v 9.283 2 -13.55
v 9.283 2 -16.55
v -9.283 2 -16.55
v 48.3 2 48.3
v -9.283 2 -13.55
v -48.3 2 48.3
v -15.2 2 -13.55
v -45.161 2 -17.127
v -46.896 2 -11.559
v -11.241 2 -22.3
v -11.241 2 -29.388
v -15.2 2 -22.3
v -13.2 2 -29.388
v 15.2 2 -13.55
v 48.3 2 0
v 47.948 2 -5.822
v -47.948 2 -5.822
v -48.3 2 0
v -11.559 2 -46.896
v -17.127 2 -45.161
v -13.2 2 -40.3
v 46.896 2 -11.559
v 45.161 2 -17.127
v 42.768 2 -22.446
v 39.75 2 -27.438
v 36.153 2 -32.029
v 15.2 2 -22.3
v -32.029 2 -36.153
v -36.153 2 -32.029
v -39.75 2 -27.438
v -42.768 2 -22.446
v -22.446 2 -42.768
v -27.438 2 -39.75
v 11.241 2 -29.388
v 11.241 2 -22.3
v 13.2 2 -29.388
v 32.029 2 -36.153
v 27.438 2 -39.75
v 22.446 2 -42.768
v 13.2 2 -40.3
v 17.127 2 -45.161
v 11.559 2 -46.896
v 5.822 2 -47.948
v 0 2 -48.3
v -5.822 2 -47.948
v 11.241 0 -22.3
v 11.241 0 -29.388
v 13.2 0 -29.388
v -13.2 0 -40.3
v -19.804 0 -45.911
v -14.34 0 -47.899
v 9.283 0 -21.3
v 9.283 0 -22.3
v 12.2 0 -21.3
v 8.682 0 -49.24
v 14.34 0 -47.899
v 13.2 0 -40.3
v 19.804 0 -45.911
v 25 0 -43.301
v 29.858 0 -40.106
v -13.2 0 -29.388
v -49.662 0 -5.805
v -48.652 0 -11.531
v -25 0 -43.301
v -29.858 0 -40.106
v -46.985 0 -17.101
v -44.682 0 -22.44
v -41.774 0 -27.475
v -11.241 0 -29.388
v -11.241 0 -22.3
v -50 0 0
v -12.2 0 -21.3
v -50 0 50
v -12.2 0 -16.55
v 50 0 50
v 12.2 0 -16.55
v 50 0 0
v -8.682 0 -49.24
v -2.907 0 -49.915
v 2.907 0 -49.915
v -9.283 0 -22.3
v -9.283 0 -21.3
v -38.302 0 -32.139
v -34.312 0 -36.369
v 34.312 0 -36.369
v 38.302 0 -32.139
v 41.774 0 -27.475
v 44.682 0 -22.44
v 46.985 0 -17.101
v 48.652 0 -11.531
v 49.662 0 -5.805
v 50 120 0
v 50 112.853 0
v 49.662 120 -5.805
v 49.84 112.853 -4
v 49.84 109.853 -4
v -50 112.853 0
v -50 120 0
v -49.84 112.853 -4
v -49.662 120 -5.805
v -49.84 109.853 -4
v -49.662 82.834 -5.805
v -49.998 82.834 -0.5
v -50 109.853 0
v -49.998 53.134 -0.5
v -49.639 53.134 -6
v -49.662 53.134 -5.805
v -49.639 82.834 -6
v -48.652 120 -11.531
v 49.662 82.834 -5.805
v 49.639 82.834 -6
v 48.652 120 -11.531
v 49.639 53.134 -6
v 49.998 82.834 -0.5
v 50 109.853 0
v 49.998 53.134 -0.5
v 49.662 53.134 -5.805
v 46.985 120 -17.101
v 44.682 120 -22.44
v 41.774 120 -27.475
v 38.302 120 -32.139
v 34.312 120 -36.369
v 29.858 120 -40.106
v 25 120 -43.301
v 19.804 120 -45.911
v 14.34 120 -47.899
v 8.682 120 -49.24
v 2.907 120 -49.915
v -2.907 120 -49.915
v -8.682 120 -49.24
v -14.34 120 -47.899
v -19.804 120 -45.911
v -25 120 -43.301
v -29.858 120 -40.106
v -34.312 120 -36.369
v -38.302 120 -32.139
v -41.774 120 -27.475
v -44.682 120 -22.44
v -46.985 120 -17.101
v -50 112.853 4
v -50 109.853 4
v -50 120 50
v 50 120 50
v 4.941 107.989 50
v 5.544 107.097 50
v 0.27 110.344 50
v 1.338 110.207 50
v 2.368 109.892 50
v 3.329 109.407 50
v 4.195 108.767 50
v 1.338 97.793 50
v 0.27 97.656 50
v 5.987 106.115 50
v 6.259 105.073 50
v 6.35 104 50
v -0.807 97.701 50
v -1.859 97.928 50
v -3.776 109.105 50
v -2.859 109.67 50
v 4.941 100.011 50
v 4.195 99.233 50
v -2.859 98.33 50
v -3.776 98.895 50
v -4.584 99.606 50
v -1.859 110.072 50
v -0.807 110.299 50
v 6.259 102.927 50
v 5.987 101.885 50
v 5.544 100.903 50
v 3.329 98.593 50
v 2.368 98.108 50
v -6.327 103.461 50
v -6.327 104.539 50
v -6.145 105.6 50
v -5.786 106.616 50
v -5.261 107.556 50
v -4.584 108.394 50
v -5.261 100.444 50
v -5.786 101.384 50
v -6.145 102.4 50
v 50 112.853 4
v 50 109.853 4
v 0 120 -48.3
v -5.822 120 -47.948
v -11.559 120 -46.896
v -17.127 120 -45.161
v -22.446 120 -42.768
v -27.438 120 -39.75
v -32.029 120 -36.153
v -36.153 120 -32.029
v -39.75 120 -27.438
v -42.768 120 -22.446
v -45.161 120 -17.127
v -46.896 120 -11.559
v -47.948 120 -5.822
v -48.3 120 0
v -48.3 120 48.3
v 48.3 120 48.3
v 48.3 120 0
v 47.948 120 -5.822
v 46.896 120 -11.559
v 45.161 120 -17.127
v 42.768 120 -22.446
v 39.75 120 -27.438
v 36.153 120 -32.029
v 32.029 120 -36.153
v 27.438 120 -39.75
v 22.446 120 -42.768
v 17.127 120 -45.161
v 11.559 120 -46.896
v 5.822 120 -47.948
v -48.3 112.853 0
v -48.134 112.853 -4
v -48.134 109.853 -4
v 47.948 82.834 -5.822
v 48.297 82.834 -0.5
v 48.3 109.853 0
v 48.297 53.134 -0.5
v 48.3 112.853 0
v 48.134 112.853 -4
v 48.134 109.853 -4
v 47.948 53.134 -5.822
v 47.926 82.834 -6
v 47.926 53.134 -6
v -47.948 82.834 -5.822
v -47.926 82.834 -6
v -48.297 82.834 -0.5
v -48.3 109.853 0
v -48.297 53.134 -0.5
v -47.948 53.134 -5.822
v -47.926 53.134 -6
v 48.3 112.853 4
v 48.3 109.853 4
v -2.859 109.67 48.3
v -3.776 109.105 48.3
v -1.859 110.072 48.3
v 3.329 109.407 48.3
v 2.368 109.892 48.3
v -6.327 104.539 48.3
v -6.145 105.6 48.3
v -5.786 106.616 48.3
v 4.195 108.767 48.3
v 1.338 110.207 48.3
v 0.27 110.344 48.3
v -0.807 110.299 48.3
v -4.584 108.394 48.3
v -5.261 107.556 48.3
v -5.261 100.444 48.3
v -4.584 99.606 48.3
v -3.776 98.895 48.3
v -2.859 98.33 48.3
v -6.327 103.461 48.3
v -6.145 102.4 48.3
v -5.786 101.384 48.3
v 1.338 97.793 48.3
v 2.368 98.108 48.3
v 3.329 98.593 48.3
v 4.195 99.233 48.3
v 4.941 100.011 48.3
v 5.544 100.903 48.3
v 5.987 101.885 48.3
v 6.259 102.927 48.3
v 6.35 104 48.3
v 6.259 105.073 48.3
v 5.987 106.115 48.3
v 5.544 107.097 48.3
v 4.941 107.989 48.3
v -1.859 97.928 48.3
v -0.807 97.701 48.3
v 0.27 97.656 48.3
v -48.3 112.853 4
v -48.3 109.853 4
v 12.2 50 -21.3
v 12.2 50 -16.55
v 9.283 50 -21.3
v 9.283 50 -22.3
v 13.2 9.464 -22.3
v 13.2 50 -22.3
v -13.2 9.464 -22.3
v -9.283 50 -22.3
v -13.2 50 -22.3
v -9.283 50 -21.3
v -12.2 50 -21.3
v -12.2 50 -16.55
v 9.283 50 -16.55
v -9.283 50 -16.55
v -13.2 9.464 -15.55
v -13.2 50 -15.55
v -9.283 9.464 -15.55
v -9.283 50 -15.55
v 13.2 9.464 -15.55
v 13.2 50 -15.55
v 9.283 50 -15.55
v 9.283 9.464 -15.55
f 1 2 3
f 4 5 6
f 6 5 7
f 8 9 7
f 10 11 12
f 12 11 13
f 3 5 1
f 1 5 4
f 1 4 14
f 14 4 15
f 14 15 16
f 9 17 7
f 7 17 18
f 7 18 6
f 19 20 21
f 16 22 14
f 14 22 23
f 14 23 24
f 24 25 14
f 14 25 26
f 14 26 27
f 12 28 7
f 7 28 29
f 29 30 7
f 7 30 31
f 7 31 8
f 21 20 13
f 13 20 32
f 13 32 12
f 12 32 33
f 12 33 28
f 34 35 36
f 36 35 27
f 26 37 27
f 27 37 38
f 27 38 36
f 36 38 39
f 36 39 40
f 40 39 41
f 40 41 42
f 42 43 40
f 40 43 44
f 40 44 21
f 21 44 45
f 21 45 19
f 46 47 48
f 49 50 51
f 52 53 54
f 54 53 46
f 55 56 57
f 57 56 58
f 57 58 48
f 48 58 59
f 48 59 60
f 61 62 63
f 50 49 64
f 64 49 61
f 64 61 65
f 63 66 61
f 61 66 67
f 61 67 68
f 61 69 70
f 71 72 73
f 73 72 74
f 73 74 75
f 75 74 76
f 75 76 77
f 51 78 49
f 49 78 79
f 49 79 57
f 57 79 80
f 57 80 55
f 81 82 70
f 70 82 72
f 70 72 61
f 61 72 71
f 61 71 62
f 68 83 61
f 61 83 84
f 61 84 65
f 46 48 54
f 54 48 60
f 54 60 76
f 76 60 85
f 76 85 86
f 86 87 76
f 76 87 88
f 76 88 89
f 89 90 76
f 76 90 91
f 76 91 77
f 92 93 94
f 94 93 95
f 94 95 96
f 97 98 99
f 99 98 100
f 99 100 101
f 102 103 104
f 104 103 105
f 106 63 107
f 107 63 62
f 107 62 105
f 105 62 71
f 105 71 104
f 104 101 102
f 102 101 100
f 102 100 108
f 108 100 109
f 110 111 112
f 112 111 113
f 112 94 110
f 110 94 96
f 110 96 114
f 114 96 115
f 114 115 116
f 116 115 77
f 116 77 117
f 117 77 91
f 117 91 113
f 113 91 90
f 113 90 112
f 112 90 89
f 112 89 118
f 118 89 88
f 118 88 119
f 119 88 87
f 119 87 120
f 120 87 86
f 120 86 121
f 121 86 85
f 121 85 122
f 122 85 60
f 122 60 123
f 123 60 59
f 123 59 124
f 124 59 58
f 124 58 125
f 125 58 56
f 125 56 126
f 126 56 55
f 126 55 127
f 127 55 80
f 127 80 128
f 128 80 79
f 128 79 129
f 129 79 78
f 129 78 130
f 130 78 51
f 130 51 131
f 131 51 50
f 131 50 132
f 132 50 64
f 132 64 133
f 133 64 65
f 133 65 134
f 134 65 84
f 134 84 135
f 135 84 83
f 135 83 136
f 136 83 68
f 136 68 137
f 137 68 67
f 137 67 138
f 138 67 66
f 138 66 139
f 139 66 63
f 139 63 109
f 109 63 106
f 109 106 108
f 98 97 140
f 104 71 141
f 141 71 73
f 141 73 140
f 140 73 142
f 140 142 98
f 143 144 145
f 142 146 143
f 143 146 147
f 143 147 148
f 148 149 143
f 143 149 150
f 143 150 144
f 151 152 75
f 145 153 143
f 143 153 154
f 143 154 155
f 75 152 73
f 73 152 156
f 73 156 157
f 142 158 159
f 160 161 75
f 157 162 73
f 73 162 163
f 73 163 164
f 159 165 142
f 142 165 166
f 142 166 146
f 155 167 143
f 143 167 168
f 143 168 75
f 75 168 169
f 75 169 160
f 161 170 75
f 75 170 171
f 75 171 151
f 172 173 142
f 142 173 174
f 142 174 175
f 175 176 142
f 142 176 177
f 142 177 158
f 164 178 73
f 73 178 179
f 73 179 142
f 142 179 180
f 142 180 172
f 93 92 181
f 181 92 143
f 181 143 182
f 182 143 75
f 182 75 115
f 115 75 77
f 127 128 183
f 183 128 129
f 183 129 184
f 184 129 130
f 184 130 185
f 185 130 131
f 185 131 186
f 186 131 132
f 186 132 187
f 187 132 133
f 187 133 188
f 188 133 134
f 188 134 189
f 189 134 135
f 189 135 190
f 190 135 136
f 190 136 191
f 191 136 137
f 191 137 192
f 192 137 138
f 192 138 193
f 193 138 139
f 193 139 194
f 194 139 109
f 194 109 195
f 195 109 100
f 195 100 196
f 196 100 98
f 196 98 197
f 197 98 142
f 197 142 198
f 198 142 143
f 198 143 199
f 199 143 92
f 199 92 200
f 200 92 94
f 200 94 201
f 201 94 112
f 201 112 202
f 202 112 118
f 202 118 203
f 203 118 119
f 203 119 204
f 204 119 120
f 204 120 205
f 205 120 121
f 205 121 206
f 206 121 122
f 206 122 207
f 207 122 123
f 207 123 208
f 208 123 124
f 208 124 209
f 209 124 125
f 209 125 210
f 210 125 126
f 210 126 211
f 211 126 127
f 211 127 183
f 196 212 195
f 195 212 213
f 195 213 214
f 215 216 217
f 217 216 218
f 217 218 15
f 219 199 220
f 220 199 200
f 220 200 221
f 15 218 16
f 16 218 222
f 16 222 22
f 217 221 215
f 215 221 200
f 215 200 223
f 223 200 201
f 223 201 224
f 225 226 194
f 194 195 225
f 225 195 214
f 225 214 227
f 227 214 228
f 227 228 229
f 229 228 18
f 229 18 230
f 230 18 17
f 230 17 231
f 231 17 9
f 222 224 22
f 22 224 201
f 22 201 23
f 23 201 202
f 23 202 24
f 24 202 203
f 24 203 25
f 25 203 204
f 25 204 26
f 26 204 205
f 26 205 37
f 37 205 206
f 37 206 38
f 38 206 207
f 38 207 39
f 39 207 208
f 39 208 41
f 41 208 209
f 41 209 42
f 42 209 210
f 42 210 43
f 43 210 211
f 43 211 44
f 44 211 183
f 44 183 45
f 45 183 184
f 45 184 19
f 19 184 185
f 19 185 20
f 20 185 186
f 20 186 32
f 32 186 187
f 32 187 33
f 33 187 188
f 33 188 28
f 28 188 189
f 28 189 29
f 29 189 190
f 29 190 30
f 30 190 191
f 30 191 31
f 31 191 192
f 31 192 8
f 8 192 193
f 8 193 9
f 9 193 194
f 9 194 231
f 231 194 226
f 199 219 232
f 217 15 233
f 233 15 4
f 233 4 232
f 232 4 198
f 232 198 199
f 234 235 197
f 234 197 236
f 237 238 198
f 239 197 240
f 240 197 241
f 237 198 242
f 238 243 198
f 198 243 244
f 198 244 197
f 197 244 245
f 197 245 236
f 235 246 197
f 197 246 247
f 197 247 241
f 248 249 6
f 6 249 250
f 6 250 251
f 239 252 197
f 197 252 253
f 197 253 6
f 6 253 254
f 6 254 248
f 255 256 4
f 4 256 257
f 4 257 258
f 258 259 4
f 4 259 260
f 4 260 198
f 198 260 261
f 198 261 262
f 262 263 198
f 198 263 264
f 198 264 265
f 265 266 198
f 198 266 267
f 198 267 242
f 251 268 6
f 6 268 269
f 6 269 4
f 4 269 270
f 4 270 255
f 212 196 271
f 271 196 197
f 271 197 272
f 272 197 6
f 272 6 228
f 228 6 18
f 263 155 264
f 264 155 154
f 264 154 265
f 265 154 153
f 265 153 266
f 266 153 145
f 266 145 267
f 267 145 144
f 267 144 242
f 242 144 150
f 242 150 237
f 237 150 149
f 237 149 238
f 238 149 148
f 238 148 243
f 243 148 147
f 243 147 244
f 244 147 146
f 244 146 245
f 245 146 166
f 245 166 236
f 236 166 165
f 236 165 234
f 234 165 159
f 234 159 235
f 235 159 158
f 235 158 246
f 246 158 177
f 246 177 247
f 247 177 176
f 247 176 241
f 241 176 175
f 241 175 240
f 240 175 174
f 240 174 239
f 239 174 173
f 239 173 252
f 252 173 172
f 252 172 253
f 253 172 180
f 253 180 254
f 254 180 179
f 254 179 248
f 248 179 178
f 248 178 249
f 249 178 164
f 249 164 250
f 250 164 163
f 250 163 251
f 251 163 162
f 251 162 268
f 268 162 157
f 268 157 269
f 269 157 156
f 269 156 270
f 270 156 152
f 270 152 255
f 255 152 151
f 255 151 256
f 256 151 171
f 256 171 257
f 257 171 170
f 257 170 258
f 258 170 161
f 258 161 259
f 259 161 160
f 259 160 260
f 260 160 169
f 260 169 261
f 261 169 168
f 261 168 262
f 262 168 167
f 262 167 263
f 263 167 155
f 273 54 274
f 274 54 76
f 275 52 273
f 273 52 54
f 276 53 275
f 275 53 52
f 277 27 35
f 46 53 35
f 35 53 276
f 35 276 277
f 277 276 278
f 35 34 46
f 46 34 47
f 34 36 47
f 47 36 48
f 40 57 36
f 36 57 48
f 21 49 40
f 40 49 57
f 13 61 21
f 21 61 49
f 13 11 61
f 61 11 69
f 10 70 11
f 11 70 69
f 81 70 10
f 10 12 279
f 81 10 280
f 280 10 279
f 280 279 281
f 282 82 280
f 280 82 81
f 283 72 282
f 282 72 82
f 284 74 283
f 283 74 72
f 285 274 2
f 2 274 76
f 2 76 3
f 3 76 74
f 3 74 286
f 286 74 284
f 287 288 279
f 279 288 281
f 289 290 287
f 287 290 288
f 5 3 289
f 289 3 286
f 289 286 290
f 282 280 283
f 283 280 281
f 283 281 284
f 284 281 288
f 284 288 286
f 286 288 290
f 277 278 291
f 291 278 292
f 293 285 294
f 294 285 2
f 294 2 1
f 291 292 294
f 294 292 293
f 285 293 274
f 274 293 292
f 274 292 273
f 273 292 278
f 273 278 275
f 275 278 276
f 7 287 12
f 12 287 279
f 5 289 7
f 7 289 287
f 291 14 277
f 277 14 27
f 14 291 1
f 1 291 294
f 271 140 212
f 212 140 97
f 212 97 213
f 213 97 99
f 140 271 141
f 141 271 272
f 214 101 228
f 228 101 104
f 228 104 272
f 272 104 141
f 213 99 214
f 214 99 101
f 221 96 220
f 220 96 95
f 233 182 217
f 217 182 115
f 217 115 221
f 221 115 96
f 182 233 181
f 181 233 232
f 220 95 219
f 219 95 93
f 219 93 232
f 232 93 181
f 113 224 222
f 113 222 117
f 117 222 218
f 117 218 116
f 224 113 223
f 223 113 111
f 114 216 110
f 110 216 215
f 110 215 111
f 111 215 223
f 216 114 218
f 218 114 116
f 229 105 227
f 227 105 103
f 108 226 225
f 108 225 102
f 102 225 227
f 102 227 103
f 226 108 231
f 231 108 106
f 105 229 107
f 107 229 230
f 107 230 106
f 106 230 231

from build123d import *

# Parameters (mm, degrees)
BOSS_EXTRUDE1_DEPTH = 120
CUT_EXTRUDE1_DEPTH  = 118
SKETCH18_R          = 6.35
CUT_EXTRUDE9_DEPTH  = 8
CUT_EXTRUDE10_START = -2
CUT_EXTRUDE10_DEPTH = 2
BOSS_EXTRUDE2_DEPTH = 48
CHAMFER1_SIZE       = 2
CHAMFER1_SIZE2      = 7.464101615
SKETCH20_W          = 5.5
SKETCH20_H          = 29.700000001
SKETCH20_W_2        = 8
SKETCH20_H_2        = 3
CUT_EXTRUDE11_DEPTH = 165.012194669


# Read off the part's stored shape, not the designer's step: Cut-Extrude10, Boss-Extrude2
with BuildPart() as part:
    # Sketch2 → Boss-Extrude1 (new body)
    with BuildSketch(Plane(origin=(0, 0, 0), x_dir=(1, 0, 0), z_dir=(0, 1, 0))):
        with BuildLine():
            Line((-50, 0), (-50, -50))
            Line((-50, -50), (50, -50))
            Line((50, -50), (50, 0))
            ThreePointArc((50, 0), (0, 50), (-50, 0))
        make_face()
    extrude(amount=BOSS_EXTRUDE1_DEPTH)

    # Sketch3 → Cut-Extrude1 (cut)
    with BuildSketch(Plane(origin=(0, 120, 0), x_dir=(1, 0, 0), z_dir=(0, 1, 0))):
        with BuildLine():
            Line((-48.3, 0), (-48.3, -48.3))
            Line((-48.3, -48.3), (48.3, -48.3))
            Line((48.3, -48.3), (48.3, 0))
            ThreePointArc((48.3, 0), (0, 48.3), (-48.3, 0))
        make_face()
    extrude(amount=-CUT_EXTRUDE1_DEPTH, mode=Mode.SUBTRACT)

    # Sketch18 → Cut-Extrude9 (cut)
    with BuildSketch(Plane.XY.offset(50)):
        with Locations((0, 104)):
            Circle(SKETCH18_R)
    extrude(amount=-CUT_EXTRUDE9_DEPTH, mode=Mode.SUBTRACT)

    # Cut-Extrude10 outline → Cut-Extrude10 (cut)
    with BuildSketch(Plane(origin=(0, 2, 0), x_dir=(1, 0, 0), z_dir=(0, 1, 0)).offset(CUT_EXTRUDE10_START)):
        Polygon((12.2, 16.55), (12.2, 21.3), (9.282585541, 21.3), (9.282585541, 22.3), (11.241292771, 22.3), (11.241292771, 29.388121527), (13.2, 29.388121527), (13.2, 40.3), (-13.2, 40.3), (-13.2, 29.388121527), (-11.241292771, 29.388121527), (-11.241292771, 22.3), (-9.282585541, 22.3), (-9.282585541, 21.3), (-12.2, 21.3), (-12.2, 16.55), align=None)
    extrude(amount=CUT_EXTRUDE10_DEPTH, mode=Mode.SUBTRACT)

    # Boss-Extrude2 outline → Boss-Extrude2 (add)
    with BuildSketch(Plane(origin=(0, 2, 0), x_dir=(1, 0, 0), z_dir=(0, 1, 0))):
        Polygon((9.282585541, 21.3), (12.2, 21.3), (12.2, 16.55), (9.282585541, 16.55), (9.282585541, 15.55), (13.2, 15.55), (13.2, 22.3), (9.282585541, 22.3), align=None)
        Polygon((-9.282585541, 15.55), (-9.282585541, 16.55), (-12.2, 16.55), (-12.2, 21.3), (-9.282585541, 21.3), (-9.282585541, 22.3), (-13.2, 22.3), (-13.2, 15.55), align=None)
    extrude(amount=BOSS_EXTRUDE2_DEPTH)

    # Chamfer1
    chamfer1_edges = [part.edges().sort_by_distance(p)[0] for p in [
        (13.2, 2, -18.925),
        (11.24129277, 2, -15.55),
        (-13.2, 2, -18.925),
        (-11.24129277, 2, -15.55),
    ]]
    chamfer1_side = [part.faces().sort_by_distance(p)[0] for p in [
        (0, 2, 7.094220812),
    ]]
    chamfer(chamfer1_edges, length=CHAMFER1_SIZE, length2=CHAMFER1_SIZE2, reference=chamfer1_side[0])

    # Sketch20 → Cut-Extrude11 (cut, through all)
    with BuildSketch(Plane(origin=(50, 0, 0), x_dir=(0, 0, -1), z_dir=(1, 0, 0))):
        with Locations((3.25, 67.984146729)):
            Rectangle(SKETCH20_W, SKETCH20_H)
        with Locations((0, 111.353074805)):
            Rectangle(SKETCH20_W_2, SKETCH20_H_2)
    extrude(amount=-CUT_EXTRUDE11_DEPTH, mode=Mode.SUBTRACT)


solid = part.part
